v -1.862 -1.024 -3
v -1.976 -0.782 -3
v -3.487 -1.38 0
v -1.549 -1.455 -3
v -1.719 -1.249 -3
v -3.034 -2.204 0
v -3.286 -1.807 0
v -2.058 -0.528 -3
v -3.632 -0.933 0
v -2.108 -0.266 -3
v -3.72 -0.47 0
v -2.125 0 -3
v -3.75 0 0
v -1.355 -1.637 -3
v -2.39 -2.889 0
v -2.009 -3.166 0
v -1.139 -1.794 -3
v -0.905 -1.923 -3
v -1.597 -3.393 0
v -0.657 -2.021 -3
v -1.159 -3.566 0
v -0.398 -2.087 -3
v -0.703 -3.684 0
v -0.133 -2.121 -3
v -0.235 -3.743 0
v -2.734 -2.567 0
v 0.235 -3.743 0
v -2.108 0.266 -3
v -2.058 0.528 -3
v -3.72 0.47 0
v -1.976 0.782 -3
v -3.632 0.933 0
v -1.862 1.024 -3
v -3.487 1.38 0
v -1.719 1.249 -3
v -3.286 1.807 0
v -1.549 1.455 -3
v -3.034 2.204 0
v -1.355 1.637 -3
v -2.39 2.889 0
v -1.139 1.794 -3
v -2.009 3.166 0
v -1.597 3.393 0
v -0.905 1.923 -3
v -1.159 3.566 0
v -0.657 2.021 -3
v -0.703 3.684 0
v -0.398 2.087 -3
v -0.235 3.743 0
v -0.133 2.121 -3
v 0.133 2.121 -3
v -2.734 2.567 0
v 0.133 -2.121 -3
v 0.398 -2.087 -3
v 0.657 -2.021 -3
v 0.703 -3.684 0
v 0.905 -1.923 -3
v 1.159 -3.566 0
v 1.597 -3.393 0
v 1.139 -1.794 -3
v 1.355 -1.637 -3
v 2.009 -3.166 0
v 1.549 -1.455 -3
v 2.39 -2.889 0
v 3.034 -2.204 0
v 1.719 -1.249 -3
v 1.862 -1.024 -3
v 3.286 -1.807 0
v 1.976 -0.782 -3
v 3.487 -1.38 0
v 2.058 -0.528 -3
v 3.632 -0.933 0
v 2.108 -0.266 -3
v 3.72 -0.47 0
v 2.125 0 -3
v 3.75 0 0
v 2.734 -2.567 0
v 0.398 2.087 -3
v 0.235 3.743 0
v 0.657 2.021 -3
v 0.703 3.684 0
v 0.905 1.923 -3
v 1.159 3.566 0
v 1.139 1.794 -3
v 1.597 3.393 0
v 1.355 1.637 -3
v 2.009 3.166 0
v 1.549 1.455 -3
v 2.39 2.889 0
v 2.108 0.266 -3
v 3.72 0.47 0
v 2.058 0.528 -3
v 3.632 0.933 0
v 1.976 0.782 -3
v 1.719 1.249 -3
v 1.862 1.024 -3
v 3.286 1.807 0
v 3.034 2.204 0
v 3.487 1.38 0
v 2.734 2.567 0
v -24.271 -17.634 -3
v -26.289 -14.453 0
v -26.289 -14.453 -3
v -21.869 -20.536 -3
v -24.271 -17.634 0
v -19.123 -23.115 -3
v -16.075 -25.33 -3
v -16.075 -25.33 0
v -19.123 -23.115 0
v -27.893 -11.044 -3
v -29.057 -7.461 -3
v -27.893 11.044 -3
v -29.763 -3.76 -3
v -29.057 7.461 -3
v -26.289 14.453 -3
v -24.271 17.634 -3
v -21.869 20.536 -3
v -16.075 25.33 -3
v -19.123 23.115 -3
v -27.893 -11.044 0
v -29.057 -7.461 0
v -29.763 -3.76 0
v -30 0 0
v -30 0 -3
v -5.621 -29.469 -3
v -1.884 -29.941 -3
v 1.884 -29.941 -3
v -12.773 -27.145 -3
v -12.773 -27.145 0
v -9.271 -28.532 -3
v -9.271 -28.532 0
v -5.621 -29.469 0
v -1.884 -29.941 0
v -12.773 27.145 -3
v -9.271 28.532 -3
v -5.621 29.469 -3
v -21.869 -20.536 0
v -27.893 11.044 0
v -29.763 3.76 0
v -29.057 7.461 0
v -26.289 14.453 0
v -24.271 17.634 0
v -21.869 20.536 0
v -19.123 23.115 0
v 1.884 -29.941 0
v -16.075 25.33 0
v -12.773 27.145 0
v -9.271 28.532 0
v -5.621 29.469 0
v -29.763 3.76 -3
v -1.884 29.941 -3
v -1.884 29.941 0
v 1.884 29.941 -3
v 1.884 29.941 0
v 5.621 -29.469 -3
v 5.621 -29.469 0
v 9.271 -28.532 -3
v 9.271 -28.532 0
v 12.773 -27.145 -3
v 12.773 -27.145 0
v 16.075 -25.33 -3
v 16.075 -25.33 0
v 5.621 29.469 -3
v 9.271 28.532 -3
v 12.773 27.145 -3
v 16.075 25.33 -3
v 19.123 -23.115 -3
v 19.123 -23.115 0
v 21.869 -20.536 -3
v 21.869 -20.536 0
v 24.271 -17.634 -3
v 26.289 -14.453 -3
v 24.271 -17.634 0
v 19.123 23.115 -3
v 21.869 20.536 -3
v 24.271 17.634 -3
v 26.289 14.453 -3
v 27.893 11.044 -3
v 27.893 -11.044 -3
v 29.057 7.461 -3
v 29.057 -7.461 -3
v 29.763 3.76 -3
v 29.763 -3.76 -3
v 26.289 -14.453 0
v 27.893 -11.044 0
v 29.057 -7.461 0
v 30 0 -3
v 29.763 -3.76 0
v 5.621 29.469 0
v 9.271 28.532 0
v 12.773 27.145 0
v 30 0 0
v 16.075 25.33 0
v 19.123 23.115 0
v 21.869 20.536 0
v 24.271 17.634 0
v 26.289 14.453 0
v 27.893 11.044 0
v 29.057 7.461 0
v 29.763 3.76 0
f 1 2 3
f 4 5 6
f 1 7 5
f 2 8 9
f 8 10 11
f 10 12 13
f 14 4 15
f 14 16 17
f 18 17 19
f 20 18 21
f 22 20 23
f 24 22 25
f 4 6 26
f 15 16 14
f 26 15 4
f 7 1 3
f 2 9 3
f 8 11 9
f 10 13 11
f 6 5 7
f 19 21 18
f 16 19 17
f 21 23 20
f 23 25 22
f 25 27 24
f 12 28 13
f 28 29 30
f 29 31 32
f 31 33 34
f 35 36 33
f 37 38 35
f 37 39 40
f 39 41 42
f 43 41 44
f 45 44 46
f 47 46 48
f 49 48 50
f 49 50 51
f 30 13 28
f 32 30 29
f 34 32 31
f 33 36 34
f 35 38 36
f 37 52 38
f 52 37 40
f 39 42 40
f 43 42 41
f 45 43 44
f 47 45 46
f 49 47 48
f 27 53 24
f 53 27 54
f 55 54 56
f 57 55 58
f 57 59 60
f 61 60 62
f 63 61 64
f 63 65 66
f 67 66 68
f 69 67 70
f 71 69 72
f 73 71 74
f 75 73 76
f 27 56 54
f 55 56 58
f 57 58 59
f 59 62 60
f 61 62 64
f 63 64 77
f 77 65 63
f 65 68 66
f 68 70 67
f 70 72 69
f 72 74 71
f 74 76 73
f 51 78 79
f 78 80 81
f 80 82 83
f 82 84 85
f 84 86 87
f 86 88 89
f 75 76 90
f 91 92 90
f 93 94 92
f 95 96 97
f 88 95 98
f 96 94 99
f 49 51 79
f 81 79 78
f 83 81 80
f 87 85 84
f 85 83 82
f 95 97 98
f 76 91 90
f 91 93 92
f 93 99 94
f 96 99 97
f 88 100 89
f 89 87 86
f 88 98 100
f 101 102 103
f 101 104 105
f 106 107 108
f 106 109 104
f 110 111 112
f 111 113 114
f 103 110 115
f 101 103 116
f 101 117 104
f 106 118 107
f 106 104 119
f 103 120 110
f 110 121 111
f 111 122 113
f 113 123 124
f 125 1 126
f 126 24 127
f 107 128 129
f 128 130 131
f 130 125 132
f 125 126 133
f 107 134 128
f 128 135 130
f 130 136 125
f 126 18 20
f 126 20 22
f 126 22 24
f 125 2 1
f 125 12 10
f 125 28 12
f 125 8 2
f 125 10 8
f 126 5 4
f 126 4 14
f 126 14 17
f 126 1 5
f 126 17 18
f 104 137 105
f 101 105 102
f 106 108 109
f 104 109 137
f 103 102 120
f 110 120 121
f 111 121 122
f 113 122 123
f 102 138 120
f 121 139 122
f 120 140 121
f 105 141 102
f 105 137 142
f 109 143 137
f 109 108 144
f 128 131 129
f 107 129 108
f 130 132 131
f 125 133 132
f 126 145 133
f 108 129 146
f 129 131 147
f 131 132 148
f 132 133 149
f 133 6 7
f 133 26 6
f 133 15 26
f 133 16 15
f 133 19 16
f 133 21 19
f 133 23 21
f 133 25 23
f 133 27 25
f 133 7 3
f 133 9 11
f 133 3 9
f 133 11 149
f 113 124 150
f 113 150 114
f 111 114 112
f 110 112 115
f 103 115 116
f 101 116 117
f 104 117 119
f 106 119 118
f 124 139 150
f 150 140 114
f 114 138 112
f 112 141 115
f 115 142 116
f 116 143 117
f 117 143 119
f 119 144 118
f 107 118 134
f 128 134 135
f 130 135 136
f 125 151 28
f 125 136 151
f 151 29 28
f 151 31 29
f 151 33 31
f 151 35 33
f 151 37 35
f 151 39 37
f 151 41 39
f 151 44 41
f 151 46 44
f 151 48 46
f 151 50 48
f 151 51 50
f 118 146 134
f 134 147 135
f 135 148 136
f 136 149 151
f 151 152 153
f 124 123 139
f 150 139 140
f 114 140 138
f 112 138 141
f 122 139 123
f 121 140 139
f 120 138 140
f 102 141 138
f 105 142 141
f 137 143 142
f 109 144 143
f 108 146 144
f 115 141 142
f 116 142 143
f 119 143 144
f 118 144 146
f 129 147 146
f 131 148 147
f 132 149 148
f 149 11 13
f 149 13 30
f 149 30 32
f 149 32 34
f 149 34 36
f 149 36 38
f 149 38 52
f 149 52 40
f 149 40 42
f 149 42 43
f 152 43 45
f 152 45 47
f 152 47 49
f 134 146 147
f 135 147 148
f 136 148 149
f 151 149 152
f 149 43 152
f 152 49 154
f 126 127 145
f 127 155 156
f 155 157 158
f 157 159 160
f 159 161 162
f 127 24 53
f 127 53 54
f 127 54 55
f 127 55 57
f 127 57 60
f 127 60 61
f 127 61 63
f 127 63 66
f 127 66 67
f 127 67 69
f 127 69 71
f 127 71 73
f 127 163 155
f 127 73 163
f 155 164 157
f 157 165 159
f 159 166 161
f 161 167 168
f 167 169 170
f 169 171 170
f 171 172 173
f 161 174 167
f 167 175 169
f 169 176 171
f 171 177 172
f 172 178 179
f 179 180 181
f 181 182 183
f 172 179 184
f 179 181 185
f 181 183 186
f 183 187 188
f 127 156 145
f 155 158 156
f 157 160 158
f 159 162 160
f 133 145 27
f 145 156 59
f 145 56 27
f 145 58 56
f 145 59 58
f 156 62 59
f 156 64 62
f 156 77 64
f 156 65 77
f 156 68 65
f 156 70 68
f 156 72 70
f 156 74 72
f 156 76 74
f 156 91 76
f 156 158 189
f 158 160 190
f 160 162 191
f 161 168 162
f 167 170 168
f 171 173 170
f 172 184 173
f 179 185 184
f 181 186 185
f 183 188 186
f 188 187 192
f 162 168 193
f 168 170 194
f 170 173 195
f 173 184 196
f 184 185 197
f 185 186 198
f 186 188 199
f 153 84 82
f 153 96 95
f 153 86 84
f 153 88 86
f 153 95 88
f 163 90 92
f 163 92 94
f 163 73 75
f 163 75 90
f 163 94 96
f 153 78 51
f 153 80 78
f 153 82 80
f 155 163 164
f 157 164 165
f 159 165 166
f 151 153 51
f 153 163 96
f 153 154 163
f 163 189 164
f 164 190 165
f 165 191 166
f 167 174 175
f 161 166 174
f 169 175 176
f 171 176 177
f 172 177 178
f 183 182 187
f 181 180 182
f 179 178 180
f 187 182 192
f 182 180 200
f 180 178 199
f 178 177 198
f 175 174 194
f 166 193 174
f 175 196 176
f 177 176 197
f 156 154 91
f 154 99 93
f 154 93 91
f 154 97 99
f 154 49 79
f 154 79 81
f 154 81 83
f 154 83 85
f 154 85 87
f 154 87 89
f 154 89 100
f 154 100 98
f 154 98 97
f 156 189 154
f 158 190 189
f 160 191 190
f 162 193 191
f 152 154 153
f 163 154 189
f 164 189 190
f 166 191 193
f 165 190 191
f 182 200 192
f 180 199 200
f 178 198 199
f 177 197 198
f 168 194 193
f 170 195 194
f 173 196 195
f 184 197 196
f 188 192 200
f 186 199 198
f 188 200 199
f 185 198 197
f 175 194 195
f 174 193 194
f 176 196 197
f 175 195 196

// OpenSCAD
$fn = 50;

difference() {
	union() {
		translate(v = [0, 0, -3.0]) {
			cylinder(h = 3, r = 30.0);
		}
	}
	union() {
		translate(v = [0, 0, 0]) {
			rotate(a = [0, 0, 0]) {
				difference() {
					union() {
						translate(v = [0, 0, -6.0]) {
							cylinder(h = 6, r = 2.0);
						}
						translate(v = [0, 0, -3]) {
							cylinder(h = 3, r1 = 2.125, r2 = 3.75);
						}
						translate(v = [0, 0, -6.0]) {
							cylinder(h = 6, r = 2.125);
						}
						translate(v = [0, 0, -6.0]) {
							cylinder(h = 6, r = 2.0);
						}
					}
					union();
				}
			}
		}
	}
}
